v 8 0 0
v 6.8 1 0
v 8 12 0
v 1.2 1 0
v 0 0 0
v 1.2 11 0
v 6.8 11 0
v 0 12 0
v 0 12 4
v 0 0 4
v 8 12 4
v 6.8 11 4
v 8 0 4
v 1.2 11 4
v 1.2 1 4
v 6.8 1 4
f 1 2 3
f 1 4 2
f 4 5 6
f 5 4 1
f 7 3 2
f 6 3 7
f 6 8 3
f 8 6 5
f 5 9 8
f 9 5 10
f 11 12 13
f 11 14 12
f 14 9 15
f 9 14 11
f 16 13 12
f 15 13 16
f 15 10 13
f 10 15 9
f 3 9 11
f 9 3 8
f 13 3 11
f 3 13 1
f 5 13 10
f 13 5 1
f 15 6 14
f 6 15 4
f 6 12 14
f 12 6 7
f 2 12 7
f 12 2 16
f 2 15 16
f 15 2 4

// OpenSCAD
// IR LED Holder for testing
// High quality settings
$fn = 100;

// Main dimensions
plate_width = 8.00;
plate_height = 12.00;
thickness = 4.00;

hole_width = 5.60;
hole_height = 10.00;
hole_thickness = 16.00;

// Calculations
hole_x_translation = plate_width / 2.0;
hole_y_translation = plate_height / 2.0;

difference() {
  translate([0, 0, 0])
  linear_extrude(height = thickness)
  hull() {
    square([plate_width, plate_height]);
  }

  translate([hole_x_translation, hole_y_translation, 0])
  linear_extrude(height = hole_thickness)
  square([hole_width, hole_height], center = true);
}
